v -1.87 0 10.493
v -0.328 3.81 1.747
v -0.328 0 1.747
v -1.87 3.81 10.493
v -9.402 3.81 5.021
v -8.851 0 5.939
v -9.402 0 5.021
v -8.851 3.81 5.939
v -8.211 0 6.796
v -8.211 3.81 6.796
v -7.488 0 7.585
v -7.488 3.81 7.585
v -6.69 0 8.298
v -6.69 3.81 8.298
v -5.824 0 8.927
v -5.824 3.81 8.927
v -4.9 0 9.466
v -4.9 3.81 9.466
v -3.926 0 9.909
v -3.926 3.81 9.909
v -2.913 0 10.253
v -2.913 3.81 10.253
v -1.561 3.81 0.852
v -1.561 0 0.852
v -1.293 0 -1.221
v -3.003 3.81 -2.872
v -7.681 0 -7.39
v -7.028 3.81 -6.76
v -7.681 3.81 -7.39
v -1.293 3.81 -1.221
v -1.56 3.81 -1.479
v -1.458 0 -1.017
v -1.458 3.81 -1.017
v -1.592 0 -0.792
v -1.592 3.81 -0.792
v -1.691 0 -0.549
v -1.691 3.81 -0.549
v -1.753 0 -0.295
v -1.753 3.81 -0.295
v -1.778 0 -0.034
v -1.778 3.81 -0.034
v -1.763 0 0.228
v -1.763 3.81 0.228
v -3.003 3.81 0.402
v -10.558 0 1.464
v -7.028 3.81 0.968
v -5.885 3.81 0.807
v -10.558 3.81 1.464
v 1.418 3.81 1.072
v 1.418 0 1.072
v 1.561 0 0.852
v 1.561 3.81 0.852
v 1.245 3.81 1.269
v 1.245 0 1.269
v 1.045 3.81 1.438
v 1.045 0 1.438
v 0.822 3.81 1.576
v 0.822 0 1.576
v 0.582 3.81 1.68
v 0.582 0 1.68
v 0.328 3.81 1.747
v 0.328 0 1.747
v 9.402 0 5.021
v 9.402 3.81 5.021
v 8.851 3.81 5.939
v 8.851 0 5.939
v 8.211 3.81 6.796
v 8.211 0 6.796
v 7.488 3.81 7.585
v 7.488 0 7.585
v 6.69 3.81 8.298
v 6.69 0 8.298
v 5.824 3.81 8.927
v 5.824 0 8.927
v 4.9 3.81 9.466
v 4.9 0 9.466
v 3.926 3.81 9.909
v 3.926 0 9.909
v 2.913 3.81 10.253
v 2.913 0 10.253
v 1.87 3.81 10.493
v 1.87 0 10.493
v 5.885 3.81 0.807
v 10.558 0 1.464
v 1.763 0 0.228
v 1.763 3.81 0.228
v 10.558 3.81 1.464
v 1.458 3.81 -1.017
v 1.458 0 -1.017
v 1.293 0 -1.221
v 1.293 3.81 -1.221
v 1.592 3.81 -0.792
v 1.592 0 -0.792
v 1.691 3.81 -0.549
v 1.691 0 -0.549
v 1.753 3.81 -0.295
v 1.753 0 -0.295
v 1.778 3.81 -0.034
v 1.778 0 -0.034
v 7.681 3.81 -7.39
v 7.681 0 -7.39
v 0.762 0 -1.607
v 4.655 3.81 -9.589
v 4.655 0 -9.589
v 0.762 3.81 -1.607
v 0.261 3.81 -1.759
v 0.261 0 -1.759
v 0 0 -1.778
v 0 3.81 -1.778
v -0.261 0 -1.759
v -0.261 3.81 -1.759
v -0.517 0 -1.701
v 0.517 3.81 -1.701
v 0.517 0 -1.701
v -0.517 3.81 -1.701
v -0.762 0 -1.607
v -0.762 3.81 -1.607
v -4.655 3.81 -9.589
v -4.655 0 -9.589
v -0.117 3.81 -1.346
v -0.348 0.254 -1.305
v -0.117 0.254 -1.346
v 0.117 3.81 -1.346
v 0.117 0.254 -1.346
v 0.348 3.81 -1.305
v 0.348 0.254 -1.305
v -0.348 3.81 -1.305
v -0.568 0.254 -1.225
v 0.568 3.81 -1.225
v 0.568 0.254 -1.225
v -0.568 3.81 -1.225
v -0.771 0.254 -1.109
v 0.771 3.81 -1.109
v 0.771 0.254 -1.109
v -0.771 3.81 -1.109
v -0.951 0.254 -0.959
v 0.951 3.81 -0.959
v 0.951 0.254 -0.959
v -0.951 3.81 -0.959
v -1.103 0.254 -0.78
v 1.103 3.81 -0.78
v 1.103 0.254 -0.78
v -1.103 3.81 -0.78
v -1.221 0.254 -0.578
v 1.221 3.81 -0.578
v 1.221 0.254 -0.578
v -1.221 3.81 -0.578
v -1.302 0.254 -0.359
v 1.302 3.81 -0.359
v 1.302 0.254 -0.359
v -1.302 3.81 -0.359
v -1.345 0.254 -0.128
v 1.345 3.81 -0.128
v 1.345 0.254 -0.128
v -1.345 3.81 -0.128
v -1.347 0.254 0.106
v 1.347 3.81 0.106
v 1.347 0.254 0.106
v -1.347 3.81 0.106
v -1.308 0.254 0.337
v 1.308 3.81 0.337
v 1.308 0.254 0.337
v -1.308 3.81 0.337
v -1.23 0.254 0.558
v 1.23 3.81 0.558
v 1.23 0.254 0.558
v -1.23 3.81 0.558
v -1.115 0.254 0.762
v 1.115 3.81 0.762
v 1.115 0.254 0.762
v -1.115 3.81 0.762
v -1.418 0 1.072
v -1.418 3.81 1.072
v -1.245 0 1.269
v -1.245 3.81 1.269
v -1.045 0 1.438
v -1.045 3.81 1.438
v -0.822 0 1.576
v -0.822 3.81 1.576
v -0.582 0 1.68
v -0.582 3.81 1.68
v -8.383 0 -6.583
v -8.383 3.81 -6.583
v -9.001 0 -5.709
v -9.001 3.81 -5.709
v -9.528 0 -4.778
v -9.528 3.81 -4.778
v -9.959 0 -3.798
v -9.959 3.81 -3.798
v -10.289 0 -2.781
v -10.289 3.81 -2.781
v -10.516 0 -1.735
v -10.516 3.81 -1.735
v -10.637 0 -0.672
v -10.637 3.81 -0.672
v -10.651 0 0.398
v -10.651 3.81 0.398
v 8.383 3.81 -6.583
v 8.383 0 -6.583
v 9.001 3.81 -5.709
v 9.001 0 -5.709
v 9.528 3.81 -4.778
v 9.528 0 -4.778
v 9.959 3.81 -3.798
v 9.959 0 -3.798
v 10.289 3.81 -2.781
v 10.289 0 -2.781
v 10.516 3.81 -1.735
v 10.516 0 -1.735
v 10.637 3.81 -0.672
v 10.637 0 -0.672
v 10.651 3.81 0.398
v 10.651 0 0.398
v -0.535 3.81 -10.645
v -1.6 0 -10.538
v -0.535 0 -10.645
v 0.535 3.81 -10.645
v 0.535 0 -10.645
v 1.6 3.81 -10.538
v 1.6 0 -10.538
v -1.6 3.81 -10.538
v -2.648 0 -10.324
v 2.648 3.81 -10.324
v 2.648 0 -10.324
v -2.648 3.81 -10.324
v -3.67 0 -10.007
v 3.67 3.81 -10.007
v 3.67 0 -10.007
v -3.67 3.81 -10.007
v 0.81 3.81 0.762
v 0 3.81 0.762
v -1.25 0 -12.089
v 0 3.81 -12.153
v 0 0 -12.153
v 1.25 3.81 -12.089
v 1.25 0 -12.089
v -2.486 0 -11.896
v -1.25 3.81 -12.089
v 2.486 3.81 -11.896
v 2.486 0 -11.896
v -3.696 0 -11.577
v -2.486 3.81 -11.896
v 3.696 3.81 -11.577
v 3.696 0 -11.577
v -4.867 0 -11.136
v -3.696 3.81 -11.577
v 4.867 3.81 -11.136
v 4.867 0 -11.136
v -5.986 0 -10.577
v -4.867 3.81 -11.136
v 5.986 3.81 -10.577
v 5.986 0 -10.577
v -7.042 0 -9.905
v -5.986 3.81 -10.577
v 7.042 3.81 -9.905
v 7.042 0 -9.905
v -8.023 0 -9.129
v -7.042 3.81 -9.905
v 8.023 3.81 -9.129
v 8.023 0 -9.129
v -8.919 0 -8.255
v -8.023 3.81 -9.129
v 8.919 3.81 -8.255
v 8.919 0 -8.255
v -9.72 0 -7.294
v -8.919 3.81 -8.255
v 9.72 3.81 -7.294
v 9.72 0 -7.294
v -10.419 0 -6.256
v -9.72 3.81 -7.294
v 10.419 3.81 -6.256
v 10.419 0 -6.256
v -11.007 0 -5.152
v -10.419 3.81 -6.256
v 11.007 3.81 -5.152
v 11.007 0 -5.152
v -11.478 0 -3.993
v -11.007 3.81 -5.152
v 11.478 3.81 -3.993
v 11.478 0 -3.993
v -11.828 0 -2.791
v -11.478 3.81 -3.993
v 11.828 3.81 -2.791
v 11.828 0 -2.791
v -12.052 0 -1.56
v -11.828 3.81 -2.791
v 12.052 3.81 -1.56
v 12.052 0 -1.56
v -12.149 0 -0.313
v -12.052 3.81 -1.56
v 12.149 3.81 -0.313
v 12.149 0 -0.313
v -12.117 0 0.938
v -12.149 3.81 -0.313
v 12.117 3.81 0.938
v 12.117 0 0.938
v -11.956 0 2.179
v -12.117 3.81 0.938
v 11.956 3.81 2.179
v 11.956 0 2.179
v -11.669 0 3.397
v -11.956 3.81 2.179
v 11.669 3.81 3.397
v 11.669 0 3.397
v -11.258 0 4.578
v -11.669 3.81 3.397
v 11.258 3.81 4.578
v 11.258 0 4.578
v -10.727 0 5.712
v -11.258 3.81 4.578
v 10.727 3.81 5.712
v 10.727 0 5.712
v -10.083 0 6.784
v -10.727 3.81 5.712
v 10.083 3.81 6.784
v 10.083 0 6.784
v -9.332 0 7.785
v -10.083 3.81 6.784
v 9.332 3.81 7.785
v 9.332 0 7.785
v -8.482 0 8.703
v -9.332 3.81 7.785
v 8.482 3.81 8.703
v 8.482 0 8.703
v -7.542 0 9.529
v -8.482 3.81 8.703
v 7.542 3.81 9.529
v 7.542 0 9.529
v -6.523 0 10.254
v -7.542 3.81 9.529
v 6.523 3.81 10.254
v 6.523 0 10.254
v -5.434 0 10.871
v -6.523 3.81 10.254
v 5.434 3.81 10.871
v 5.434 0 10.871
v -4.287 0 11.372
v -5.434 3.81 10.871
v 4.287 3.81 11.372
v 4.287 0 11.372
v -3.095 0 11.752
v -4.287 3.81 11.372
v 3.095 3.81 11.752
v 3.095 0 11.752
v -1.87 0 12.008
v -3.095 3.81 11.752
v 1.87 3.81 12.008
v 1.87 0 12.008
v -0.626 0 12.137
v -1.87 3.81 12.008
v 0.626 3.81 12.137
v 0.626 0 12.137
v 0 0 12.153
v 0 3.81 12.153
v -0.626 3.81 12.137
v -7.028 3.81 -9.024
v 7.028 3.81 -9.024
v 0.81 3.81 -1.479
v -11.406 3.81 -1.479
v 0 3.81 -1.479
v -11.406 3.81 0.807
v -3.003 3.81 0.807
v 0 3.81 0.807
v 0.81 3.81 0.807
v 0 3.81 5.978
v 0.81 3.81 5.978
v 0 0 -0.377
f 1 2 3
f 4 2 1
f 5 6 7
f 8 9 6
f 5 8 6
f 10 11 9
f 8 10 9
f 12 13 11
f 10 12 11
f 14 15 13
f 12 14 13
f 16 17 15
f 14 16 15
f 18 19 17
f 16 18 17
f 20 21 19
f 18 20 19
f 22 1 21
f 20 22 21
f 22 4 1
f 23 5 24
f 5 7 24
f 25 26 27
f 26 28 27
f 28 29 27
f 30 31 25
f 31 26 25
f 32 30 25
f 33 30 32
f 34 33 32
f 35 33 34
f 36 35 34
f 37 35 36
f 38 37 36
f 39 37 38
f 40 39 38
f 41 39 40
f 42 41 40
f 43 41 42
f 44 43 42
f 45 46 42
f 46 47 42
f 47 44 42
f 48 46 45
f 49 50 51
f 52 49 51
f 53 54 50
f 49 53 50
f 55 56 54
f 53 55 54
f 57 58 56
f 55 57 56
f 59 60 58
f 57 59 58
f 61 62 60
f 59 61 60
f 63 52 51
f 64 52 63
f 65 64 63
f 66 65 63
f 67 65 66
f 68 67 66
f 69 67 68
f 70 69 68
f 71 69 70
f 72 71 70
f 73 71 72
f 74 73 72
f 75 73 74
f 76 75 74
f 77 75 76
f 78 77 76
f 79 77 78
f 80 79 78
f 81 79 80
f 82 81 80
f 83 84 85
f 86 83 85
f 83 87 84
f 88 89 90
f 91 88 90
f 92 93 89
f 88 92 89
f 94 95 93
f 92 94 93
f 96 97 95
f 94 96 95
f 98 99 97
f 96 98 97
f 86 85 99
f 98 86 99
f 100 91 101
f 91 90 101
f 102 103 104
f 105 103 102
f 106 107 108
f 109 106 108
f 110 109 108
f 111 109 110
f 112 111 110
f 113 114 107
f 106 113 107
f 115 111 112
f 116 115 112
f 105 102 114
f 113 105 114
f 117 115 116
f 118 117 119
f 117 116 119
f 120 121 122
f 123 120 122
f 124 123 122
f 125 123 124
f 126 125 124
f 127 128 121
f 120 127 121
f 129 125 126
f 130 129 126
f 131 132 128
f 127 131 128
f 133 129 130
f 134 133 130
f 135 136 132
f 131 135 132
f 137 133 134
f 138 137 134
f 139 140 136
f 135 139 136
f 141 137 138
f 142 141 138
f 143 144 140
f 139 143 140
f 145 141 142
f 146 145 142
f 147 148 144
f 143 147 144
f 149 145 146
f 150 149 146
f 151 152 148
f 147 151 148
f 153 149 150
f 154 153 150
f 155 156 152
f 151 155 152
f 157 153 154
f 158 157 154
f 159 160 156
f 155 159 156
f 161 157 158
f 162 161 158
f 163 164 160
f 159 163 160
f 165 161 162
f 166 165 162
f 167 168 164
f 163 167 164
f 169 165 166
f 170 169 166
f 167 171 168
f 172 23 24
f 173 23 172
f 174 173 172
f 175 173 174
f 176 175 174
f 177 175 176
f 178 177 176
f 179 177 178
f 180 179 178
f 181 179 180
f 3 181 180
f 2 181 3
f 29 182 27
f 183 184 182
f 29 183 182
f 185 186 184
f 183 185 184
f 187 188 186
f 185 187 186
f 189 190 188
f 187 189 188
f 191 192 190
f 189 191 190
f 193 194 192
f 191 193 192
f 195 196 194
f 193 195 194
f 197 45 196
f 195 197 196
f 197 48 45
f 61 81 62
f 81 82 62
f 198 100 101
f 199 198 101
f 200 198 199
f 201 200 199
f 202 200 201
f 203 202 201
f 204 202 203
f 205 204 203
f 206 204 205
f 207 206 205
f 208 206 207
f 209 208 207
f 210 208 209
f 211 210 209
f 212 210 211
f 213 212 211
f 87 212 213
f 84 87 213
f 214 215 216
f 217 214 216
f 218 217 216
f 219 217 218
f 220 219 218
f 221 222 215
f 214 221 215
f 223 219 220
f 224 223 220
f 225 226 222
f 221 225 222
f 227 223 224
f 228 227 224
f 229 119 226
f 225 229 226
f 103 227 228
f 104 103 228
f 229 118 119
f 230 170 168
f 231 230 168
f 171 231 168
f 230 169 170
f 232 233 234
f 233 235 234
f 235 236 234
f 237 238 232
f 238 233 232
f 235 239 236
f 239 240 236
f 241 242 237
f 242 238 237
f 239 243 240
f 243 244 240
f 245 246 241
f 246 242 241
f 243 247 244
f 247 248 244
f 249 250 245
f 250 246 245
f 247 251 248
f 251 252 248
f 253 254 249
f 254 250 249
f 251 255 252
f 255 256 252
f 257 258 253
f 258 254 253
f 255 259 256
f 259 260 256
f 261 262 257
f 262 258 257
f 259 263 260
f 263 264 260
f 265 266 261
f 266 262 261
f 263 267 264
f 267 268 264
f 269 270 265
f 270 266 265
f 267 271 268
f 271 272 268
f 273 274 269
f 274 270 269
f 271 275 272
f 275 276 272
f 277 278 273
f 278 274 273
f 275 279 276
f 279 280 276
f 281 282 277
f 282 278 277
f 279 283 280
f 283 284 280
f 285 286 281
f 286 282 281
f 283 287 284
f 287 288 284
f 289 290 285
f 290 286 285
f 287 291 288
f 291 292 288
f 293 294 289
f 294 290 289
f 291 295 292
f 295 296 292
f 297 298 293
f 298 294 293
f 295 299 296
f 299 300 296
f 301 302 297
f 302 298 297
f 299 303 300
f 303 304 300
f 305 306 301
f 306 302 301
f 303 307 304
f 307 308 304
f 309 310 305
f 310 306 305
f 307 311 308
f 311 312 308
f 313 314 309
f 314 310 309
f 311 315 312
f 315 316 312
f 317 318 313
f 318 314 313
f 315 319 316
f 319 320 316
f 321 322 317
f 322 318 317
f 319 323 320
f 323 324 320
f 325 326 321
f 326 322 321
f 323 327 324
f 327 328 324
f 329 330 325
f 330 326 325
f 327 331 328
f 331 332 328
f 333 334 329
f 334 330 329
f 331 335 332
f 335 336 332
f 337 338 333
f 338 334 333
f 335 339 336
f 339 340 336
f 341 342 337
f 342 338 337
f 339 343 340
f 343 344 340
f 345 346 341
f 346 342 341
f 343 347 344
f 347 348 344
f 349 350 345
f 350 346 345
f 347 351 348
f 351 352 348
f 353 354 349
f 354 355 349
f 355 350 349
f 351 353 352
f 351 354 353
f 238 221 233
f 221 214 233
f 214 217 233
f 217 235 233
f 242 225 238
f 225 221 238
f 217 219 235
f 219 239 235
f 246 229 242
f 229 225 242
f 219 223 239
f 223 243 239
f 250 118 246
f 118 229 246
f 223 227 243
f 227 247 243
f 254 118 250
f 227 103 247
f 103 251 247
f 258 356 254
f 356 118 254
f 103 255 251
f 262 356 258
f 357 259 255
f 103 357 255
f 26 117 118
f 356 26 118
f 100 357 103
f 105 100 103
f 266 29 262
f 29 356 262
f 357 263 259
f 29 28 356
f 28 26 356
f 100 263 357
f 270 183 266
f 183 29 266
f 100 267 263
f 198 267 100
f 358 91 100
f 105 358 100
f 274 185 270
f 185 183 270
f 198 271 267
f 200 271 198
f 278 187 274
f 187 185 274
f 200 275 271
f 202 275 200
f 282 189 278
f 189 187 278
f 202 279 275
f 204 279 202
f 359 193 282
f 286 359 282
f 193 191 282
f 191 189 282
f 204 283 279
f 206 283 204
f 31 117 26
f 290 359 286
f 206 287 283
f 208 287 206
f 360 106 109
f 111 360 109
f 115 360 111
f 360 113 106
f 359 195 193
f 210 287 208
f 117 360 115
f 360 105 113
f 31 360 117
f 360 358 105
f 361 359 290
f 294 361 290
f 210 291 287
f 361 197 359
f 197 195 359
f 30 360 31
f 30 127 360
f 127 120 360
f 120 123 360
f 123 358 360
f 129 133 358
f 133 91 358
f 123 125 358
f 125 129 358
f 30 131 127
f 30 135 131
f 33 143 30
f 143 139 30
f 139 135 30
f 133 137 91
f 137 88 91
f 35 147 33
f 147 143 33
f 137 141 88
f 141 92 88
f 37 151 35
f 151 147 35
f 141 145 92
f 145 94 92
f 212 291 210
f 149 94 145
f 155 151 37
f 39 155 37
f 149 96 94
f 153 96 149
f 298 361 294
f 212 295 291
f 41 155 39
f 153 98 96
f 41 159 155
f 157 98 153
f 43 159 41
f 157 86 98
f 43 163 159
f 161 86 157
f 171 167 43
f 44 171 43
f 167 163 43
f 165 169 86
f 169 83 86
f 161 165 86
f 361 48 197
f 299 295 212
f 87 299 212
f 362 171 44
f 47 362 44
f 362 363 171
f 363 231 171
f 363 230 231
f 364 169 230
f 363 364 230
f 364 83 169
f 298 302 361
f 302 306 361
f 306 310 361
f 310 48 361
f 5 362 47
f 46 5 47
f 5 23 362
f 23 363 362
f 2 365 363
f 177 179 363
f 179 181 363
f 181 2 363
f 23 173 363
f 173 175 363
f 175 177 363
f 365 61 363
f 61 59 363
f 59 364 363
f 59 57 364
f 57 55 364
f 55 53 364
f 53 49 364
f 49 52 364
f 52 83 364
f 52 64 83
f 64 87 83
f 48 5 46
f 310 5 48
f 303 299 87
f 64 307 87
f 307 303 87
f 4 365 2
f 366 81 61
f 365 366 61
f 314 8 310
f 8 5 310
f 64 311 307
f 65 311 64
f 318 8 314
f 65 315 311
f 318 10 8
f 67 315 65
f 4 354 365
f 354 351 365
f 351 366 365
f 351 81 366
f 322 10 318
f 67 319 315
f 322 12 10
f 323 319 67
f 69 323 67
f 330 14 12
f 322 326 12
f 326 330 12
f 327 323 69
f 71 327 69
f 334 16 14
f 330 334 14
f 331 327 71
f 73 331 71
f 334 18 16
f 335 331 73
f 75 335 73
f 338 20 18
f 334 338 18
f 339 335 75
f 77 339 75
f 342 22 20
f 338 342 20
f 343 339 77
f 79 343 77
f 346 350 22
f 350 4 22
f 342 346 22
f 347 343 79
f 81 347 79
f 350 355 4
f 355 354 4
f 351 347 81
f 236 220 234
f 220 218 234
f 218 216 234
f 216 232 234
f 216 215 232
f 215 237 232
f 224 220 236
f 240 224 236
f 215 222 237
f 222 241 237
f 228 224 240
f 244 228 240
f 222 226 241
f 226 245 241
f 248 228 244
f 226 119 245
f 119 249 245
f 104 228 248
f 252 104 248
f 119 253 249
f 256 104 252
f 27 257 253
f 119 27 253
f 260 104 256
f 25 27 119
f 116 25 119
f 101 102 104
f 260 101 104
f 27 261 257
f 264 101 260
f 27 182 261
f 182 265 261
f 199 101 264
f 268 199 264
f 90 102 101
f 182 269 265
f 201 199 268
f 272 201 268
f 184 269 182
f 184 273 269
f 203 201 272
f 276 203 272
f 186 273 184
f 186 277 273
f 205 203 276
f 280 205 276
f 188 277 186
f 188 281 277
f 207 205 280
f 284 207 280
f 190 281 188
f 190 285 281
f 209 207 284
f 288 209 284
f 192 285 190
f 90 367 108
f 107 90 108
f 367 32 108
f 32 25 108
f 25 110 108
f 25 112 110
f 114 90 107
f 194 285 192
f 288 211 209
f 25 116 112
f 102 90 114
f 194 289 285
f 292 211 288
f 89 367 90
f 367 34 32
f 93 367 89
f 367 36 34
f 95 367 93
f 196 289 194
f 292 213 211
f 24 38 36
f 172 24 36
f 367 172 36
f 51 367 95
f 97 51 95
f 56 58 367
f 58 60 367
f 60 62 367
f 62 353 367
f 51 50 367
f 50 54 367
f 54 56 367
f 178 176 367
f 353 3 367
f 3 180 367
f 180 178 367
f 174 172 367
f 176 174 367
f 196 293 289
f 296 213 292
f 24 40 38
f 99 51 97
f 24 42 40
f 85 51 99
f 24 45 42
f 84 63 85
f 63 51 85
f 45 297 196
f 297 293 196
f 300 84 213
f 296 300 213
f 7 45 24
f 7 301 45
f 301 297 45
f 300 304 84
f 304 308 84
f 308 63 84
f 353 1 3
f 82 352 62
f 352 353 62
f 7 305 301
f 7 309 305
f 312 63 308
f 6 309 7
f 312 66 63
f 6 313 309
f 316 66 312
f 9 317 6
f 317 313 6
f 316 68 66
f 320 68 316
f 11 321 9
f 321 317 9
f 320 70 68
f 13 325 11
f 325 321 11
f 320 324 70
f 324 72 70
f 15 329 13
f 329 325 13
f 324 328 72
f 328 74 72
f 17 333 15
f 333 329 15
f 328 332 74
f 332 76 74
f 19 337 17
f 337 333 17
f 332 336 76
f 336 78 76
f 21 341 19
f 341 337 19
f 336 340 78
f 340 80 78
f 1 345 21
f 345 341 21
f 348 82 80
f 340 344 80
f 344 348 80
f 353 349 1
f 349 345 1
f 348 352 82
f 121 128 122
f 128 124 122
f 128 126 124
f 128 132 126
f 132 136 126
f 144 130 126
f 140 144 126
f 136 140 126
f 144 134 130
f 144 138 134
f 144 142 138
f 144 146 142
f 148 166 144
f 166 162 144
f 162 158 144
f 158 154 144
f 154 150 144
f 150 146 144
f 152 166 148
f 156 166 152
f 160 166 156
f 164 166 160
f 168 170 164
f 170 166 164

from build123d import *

# Parameters (mm, degrees)
SKETCH1_R           = 12.153059969
BOSS_EXTRUDE1_DEPTH = 3.81
SKETCH1_8_R         = 1.350728719
BOSS_EXTRUDE3_DEPTH = 0.254


with BuildPart() as part:
    # Sketch1 → Boss-Extrude1 (new body)
    with BuildSketch(Plane(origin=(0, 0, 0), x_dir=(1, 0, 0), z_dir=(0, 1, 0))):
        Circle(SKETCH1_R)
        with BuildLine():
            Line((1.11526861, -0.762), (-1.11526861, -0.762))
            ThreePointArc((-1.11526861, -0.762), (0, 1.350728719), (1.11526861, -0.762))
        make_face(mode=Mode.SUBTRACT)
        with BuildLine():
            Line((-9.401654798, -5.02134393), (-1.560500416, -0.85212819))
            ThreePointArc((-1.560500416, -0.85212819), (-1.045082179, -1.438432216), (-0.32820092, -1.747446181))
            Line((-0.32820092, -1.747446181), (-1.870310758, -10.493185668))
            ThreePointArc((-1.870310758, -10.493185668), (-6.264947316, -8.622960218), (-9.401654798, -5.02134393))
        make_face(mode=Mode.SUBTRACT)
        with BuildLine():
            Line((-1.763339739, -0.227852943), (-10.557570415, -1.463801463))
            ThreePointArc((-10.557570415, -1.463801463), (-10.136897695, 3.29367772), (-7.680852973, 7.38982445))
            Line((-7.680852973, 7.38982445), (-1.292643216, 1.220801997))
            ThreePointArc((-1.292643216, 1.220801997), (-1.690978486, 0.549432216), (-1.763339739, -0.227852943))
        make_face(mode=Mode.SUBTRACT)
        with BuildLine():
            ThreePointArc((9.401654798, -5.02134393), (6.264947316, -8.622960218), (1.870310758, -10.493185668))
            Line((1.870310758, -10.493185668), (0.32820092, -1.747446181))
            ThreePointArc((0.32820092, -1.747446181), (1.045082179, -1.438432216), (1.560500416, -0.85212819))
            Line((1.560500416, -0.85212819), (9.401654798, -5.02134393))
        make_face(mode=Mode.SUBTRACT)
        with BuildLine():
            Line((10.557570415, -1.463801463), (1.763339739, -0.227852943))
            ThreePointArc((1.763339739, -0.227852943), (1.690978486, 0.549432216), (1.292643216, 1.220801997))
            Line((1.292643216, 1.220801997), (7.680852973, 7.38982445))
            ThreePointArc((7.680852973, 7.38982445), (10.136897695, 3.29367772), (10.557570415, -1.463801463))
        make_face(mode=Mode.SUBTRACT)
        with BuildLine():
            ThreePointArc((-4.654626598, 9.588506611), (0, 10.658564997), (4.654626598, 9.588506611))
            Line((4.654626598, 9.588506611), (0.761602973, 1.606625318))
            ThreePointArc((0.761602973, 1.606625318), (0, 1.778), (-0.761602973, 1.606625318))
            Line((-0.761602973, 1.606625318), (-4.654626598, 9.588506611))
        make_face(mode=Mode.SUBTRACT)
    extrude(amount=BOSS_EXTRUDE1_DEPTH)

    # Sketch1<8> → Boss-Extrude3 (add)
    with BuildSketch(Plane(origin=(0, 0, 0), x_dir=(1, 0, 0), z_dir=(0, 1, 0))):
        Circle(SKETCH1_8_R)
    extrude(amount=BOSS_EXTRUDE3_DEPTH)


solid = part.part
